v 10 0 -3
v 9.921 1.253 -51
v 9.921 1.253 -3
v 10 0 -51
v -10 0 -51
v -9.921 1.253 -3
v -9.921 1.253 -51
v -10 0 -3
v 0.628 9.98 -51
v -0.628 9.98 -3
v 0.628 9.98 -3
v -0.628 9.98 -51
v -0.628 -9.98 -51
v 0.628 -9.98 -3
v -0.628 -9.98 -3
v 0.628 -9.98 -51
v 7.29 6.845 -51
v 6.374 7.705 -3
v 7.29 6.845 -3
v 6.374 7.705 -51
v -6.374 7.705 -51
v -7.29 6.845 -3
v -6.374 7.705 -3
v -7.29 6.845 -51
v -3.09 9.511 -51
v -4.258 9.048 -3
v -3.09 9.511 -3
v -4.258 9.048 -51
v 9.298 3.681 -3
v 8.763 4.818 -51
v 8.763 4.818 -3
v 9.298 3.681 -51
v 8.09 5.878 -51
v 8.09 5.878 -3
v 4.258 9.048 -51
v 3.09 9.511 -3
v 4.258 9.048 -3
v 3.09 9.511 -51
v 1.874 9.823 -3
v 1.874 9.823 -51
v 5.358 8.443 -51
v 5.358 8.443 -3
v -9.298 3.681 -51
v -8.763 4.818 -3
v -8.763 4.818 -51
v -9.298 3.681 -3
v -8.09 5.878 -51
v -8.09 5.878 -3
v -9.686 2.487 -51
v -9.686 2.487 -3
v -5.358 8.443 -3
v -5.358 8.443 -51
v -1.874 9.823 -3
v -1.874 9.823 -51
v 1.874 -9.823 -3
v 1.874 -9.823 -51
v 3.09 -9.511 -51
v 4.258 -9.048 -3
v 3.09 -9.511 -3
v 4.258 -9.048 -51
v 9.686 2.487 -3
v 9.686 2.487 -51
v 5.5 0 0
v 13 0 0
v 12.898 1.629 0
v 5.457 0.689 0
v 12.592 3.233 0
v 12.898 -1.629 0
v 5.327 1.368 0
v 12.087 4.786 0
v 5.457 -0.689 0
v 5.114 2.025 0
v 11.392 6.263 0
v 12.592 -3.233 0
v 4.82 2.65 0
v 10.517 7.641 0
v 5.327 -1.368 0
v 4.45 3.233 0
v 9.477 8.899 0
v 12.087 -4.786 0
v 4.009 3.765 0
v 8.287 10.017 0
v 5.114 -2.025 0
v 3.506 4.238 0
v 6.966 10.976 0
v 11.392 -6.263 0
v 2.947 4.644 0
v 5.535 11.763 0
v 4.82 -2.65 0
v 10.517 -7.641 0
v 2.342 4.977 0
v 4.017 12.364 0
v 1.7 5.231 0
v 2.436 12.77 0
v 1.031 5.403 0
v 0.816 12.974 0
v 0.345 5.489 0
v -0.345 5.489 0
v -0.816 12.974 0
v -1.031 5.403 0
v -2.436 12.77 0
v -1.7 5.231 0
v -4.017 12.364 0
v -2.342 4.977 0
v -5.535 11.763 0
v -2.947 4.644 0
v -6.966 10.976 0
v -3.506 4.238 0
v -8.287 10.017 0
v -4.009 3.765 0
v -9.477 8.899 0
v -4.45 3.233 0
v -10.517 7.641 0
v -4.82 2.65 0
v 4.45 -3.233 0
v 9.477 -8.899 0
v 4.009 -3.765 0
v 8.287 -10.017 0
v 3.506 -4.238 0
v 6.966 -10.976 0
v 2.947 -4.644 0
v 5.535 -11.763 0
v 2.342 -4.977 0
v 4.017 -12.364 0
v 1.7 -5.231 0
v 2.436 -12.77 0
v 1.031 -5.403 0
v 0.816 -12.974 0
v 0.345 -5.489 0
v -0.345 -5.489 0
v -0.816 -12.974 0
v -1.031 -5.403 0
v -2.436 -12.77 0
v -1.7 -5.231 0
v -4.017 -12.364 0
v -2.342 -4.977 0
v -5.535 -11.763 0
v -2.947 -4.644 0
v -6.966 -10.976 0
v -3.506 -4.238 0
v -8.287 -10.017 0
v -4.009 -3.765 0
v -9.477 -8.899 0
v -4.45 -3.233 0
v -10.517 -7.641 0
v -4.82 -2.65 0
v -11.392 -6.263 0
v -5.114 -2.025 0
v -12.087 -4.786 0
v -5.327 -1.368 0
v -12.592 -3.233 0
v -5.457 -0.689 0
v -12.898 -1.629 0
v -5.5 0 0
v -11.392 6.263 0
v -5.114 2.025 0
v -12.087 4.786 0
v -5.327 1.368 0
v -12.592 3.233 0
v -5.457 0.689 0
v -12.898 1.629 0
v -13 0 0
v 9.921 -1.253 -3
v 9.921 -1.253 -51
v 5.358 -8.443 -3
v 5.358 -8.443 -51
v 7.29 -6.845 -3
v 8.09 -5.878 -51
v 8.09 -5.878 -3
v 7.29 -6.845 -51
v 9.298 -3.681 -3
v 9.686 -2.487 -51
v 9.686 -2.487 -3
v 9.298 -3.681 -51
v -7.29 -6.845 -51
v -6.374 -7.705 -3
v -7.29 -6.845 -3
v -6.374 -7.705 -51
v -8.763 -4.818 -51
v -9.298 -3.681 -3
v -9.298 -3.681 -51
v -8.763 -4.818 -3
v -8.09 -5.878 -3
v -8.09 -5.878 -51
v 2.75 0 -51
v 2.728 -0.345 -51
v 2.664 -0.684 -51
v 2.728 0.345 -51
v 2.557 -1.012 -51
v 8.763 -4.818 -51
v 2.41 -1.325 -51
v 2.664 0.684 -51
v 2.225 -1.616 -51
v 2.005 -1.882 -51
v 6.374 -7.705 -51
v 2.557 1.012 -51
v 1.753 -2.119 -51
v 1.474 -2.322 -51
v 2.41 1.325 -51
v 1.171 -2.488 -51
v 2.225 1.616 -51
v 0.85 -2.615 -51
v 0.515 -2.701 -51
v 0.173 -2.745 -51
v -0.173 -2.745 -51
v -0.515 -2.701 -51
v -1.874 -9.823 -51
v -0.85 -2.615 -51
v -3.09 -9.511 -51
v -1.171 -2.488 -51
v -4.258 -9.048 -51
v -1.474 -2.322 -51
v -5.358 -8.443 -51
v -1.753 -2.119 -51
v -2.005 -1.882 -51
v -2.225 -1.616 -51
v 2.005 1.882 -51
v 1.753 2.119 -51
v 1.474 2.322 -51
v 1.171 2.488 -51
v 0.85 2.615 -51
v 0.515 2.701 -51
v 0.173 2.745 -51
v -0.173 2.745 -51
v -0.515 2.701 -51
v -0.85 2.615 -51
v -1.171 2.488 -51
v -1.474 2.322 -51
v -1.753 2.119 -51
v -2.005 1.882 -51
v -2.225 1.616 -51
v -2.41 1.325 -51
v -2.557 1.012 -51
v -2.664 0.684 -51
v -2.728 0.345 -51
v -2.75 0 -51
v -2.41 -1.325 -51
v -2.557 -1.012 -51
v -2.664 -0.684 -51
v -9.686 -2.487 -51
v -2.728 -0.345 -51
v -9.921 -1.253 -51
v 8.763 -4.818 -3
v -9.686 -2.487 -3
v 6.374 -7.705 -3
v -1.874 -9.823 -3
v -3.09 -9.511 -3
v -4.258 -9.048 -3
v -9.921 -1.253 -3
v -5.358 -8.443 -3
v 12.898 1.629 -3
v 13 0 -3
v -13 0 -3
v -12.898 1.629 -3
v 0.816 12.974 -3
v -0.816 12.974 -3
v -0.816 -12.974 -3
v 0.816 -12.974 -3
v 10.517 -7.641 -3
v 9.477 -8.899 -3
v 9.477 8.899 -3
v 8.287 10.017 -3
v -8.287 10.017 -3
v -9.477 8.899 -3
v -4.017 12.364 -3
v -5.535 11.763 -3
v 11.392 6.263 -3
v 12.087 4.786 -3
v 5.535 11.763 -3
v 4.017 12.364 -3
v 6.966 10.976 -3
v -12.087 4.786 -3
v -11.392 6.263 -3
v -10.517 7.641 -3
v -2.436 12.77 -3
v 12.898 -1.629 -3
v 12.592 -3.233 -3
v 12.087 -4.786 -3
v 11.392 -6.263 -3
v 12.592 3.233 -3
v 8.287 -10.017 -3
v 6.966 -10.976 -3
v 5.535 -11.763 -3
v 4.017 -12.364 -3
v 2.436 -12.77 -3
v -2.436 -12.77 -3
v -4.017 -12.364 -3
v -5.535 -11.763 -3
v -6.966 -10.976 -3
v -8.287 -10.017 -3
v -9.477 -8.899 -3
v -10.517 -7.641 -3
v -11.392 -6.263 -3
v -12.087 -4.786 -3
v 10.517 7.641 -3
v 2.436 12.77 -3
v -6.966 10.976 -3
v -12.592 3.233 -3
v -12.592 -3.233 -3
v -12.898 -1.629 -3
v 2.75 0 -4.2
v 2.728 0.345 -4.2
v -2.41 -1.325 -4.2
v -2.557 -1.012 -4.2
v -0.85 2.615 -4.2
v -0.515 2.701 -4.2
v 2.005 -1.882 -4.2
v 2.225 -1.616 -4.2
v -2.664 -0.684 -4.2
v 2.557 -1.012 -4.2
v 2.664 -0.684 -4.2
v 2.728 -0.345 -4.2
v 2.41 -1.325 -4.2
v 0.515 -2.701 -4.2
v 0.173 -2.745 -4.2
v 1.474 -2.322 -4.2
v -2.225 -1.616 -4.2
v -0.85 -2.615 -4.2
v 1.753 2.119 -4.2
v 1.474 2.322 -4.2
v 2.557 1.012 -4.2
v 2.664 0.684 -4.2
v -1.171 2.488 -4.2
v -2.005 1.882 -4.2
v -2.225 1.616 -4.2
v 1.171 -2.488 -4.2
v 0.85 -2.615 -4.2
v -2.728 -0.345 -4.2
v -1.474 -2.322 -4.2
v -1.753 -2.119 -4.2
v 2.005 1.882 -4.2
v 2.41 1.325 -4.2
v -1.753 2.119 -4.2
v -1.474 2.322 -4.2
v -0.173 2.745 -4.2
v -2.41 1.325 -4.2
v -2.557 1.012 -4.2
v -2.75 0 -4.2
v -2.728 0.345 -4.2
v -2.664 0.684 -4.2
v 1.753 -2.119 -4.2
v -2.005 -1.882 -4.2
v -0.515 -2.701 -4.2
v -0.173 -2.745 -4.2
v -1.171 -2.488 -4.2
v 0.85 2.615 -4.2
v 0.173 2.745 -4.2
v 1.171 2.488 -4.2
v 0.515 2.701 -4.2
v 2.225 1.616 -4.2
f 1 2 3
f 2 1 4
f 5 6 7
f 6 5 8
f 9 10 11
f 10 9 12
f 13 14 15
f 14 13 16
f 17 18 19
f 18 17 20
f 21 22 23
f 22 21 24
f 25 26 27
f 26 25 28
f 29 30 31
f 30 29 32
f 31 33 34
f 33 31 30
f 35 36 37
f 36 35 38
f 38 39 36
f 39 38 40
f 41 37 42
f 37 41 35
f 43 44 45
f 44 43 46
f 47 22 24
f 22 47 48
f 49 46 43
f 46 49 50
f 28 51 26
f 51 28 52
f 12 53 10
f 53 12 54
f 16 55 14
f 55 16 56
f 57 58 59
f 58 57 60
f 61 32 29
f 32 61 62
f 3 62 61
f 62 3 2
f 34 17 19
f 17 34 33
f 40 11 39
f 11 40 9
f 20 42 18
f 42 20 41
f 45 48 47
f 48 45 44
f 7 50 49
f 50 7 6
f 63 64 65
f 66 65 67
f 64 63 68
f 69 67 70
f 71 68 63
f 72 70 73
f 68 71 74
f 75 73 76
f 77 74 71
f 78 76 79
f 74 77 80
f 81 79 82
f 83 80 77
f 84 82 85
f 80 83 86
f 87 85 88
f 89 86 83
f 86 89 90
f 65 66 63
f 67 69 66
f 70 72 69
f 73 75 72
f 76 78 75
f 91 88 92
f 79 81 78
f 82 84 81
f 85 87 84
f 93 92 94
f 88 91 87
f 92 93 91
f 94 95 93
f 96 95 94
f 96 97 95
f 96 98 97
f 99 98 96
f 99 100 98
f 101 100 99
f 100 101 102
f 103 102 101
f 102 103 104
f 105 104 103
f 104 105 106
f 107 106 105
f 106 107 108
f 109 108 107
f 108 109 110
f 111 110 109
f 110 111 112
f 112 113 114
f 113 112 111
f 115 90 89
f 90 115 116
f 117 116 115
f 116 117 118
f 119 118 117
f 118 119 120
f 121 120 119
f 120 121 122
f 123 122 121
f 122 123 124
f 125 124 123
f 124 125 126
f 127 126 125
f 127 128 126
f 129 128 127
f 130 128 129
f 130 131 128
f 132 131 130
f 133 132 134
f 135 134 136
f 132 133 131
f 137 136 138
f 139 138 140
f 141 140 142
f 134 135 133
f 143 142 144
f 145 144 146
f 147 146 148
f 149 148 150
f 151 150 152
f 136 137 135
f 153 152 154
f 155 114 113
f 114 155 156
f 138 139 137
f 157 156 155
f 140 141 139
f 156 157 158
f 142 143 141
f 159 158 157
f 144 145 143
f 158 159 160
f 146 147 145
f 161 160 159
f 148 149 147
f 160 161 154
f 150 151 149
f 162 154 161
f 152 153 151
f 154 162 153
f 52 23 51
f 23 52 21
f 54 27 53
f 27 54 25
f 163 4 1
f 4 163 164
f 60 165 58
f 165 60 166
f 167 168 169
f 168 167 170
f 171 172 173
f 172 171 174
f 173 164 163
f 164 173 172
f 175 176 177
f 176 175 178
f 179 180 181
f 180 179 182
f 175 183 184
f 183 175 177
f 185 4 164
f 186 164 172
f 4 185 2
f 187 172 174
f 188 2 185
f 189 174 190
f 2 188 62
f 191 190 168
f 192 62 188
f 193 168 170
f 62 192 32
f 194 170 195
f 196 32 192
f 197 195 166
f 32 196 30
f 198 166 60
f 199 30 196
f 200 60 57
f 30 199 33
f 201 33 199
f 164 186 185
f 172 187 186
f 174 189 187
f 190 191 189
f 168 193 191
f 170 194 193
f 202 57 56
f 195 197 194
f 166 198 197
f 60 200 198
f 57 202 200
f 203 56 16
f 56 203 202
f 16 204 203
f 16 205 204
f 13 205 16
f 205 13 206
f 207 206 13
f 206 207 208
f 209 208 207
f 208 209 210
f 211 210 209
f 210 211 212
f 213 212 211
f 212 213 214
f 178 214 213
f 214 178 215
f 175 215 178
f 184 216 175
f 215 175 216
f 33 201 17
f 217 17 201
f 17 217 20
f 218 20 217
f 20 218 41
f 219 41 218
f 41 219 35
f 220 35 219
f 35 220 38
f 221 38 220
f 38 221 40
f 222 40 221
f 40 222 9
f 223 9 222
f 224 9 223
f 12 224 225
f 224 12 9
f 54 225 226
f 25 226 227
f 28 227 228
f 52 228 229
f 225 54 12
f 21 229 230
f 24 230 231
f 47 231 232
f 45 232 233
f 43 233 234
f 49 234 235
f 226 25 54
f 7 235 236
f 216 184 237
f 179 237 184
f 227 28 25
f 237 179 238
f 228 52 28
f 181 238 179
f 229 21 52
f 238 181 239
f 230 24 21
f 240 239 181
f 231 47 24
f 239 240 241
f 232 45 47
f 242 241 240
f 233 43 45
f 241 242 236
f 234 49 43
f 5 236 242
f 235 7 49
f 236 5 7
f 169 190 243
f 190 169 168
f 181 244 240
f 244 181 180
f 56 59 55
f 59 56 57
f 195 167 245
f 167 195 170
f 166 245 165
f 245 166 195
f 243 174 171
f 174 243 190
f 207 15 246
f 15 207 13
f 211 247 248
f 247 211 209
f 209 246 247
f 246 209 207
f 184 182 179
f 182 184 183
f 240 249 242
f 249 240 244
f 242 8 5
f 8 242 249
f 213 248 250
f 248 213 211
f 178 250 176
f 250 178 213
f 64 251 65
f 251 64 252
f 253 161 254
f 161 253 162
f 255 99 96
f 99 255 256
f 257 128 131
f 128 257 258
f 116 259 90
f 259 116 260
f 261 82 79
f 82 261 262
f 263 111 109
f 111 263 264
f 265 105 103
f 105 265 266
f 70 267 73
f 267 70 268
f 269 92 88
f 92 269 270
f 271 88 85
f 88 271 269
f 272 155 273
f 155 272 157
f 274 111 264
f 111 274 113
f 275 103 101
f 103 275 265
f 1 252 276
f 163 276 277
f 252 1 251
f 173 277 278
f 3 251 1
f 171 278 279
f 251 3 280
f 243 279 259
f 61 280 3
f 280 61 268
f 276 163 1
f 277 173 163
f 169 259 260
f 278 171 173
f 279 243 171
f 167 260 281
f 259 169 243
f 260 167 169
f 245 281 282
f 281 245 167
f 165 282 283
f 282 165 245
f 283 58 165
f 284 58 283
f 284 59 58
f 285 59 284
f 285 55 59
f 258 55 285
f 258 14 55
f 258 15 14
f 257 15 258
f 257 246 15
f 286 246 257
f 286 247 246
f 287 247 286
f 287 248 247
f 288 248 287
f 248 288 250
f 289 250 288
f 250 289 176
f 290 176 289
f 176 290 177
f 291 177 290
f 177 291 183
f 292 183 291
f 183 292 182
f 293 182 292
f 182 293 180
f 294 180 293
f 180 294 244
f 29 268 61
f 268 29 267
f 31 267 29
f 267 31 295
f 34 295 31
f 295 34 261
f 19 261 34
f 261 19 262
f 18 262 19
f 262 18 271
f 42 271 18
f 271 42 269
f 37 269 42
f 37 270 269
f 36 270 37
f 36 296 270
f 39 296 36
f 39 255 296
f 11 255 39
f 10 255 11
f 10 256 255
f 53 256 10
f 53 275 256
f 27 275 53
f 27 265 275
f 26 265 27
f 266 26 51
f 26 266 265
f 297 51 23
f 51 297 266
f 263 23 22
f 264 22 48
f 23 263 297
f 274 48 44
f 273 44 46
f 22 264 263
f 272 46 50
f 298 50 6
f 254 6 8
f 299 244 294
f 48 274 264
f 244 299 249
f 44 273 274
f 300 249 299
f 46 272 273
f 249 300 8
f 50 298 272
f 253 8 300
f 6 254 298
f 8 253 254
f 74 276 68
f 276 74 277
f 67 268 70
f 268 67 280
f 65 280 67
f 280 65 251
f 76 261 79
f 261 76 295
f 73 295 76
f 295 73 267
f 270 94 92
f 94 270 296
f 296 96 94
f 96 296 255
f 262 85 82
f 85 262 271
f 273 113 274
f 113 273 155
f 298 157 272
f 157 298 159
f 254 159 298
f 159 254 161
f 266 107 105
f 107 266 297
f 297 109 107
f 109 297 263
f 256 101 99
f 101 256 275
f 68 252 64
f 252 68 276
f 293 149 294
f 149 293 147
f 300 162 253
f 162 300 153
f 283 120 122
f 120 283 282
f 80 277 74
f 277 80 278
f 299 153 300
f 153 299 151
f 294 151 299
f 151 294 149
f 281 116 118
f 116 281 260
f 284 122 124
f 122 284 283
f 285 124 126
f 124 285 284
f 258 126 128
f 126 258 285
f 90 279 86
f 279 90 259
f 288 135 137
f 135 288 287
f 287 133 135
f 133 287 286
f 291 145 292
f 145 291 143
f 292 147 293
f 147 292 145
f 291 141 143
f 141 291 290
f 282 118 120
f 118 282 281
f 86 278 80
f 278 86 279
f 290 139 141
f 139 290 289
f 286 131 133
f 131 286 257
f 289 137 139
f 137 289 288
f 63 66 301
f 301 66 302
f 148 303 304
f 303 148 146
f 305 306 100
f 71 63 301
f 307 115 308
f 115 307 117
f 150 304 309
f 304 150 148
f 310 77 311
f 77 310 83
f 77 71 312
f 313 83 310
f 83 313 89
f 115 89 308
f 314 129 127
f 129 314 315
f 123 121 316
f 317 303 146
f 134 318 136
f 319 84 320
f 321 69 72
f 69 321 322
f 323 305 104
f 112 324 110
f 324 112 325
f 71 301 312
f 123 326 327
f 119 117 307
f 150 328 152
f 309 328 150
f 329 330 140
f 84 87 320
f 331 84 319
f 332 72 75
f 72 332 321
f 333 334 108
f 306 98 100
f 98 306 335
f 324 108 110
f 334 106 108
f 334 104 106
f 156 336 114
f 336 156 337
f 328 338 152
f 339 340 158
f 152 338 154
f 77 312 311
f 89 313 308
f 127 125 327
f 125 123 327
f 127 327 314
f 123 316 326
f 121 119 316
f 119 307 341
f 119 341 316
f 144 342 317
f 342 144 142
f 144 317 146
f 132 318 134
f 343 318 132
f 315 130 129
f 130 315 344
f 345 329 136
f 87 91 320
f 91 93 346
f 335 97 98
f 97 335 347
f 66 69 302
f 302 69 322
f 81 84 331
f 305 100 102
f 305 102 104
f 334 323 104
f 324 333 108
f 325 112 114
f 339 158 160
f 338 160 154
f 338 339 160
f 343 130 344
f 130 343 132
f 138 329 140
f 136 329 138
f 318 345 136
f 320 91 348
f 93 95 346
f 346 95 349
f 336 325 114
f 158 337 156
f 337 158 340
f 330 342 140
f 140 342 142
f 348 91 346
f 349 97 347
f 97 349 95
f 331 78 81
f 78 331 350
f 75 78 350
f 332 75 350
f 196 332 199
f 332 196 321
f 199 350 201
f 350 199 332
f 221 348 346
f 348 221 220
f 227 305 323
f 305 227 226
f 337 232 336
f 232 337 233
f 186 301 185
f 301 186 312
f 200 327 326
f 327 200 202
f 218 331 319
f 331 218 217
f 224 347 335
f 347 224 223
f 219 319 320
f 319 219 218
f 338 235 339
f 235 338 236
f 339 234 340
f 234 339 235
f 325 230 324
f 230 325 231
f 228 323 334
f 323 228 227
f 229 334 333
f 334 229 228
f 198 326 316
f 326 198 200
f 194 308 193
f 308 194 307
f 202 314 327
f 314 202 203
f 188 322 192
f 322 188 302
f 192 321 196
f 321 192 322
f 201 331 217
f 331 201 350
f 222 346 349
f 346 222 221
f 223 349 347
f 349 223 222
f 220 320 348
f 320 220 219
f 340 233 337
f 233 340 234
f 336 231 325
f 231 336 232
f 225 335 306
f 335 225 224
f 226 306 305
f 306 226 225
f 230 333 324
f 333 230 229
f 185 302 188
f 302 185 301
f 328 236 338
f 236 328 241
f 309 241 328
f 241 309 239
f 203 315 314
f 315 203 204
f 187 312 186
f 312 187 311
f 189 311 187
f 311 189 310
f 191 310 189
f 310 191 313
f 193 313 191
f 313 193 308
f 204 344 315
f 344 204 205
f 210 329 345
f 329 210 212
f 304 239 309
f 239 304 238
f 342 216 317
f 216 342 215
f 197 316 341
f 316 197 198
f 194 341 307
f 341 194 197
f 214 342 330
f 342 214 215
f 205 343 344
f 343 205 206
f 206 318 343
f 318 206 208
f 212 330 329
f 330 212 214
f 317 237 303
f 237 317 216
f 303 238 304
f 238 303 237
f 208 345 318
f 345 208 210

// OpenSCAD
$fn = 50;


difference() {
	union() {
		translate(v = [0, 0, -51.0000000000]) {
			cylinder(h = 51, r = 10.0000000000);
		}
		translate(v = [0, 0, -3.0000000000]) {
			cylinder(h = 3, r = 13.0000000000);
		}
	}
	union() {
		translate(v = [0, 0, 0]) {
			rotate(a = [0, 0, 0]) {
				difference() {
					union() {
						#translate(v = [0, 0, -51.0000000000]) {
							cylinder(h = 51, r = 2.2500000000);
						}
						#translate(v = [0, 0, -4.2000000000]) {
							cylinder(h = 4.2000000000, r = 10.0000000000, r1 = 2.7500000000, r2 = 5.5000000000);
						}
						#translate(v = [0, 0, -51.0000000000]) {
							cylinder(h = 51, r = 2.7500000000);
						}
						#translate(v = [0, 0, -51.0000000000]) {
							cylinder(h = 51, r = 2.2500000000);
						}
					}
					union();
				}
			}
		}
	}
}
